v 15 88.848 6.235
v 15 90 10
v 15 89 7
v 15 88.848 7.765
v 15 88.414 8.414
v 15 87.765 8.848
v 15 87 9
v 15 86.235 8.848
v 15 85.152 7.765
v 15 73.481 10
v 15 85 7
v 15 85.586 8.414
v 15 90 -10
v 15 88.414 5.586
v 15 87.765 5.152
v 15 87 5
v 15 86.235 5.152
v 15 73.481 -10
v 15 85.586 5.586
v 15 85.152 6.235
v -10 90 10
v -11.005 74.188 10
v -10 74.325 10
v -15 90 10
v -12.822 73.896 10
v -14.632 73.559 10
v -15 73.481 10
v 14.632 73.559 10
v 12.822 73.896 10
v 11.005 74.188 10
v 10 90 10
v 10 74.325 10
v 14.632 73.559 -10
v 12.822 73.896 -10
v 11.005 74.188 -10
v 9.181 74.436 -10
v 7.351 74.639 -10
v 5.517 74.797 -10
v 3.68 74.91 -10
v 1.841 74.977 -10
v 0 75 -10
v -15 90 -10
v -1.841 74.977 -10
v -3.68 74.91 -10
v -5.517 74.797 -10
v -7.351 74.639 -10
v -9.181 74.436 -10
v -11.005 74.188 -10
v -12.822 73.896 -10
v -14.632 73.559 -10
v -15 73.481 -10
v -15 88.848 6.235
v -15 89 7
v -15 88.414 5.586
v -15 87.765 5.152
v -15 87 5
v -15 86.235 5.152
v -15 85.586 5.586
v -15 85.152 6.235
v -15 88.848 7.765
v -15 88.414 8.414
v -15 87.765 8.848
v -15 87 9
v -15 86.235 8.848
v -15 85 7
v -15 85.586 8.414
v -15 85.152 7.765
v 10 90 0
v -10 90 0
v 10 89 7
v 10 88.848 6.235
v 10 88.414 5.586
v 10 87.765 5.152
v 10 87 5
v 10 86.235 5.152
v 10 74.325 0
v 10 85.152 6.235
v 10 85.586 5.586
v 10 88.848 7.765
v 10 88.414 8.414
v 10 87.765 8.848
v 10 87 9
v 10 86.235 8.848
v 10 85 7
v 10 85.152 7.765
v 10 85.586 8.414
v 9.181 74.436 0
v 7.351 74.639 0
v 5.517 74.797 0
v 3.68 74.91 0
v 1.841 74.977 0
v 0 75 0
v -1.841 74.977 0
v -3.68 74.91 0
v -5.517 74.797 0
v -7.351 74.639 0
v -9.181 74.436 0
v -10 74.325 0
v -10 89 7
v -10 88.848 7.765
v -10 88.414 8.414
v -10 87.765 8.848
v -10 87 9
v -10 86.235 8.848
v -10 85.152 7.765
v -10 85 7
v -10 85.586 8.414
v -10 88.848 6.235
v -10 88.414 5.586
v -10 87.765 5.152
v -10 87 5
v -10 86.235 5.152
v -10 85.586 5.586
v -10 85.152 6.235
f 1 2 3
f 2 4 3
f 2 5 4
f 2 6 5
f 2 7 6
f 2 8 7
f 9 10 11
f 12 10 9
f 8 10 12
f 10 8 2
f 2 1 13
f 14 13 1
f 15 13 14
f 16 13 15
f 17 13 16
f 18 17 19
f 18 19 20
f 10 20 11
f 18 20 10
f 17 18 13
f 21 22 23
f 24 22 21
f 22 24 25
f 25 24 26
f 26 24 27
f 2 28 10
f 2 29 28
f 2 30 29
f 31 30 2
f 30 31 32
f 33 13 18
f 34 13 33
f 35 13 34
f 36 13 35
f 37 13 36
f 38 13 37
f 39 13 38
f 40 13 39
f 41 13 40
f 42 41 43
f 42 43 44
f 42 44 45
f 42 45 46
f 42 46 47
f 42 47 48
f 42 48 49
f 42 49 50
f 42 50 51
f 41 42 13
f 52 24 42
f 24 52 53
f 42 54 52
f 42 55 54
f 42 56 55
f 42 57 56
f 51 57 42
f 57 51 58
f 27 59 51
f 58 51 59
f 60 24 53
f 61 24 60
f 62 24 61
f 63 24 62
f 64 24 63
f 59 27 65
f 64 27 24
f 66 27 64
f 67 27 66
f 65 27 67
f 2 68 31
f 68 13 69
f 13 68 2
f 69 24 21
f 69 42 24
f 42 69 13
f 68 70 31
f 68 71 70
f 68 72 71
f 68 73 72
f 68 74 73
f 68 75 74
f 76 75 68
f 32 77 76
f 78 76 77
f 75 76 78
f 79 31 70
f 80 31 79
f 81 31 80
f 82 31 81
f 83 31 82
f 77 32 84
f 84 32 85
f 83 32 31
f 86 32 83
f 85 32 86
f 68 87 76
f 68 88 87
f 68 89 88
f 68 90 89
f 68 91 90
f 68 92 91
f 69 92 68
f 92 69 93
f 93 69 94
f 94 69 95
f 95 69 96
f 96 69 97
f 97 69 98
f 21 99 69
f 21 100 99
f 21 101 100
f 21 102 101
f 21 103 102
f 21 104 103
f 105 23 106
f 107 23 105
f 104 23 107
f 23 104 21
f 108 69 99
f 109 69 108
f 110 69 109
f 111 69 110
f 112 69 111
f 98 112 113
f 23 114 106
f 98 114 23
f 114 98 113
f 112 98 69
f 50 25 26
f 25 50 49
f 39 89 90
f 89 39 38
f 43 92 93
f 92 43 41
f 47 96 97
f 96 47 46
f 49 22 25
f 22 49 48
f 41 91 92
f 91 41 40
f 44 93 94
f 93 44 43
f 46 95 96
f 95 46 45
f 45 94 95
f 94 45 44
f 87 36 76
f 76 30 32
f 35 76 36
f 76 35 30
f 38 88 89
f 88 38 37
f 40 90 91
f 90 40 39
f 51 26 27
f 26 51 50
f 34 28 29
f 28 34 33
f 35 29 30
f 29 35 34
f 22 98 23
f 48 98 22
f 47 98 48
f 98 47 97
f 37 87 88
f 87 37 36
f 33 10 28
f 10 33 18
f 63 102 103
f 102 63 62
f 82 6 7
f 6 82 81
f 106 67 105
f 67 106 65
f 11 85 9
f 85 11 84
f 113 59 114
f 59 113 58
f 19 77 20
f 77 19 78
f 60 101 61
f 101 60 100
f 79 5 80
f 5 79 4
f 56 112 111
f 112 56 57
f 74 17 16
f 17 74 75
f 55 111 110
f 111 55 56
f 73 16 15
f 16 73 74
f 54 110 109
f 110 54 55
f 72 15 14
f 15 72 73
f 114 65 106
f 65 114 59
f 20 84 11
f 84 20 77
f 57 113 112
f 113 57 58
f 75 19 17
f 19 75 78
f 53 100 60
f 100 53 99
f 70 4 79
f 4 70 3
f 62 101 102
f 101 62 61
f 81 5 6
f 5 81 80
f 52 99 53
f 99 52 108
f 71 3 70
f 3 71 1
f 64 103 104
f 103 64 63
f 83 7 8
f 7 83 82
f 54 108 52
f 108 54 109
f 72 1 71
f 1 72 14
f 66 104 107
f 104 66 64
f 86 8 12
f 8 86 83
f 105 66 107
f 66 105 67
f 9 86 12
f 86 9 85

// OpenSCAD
$fn=256;


difference(){
translate([0,80,0])
cube([30,20,20],center=true);
translate([0,80,10])
cube([20,25,20],center=true);
cylinder(d=150,h=50,center=true);
    translate([0,87,7])
rotate([0,90,0])
cylinder(d=4,h=50,center=true,$fn=16);

}
